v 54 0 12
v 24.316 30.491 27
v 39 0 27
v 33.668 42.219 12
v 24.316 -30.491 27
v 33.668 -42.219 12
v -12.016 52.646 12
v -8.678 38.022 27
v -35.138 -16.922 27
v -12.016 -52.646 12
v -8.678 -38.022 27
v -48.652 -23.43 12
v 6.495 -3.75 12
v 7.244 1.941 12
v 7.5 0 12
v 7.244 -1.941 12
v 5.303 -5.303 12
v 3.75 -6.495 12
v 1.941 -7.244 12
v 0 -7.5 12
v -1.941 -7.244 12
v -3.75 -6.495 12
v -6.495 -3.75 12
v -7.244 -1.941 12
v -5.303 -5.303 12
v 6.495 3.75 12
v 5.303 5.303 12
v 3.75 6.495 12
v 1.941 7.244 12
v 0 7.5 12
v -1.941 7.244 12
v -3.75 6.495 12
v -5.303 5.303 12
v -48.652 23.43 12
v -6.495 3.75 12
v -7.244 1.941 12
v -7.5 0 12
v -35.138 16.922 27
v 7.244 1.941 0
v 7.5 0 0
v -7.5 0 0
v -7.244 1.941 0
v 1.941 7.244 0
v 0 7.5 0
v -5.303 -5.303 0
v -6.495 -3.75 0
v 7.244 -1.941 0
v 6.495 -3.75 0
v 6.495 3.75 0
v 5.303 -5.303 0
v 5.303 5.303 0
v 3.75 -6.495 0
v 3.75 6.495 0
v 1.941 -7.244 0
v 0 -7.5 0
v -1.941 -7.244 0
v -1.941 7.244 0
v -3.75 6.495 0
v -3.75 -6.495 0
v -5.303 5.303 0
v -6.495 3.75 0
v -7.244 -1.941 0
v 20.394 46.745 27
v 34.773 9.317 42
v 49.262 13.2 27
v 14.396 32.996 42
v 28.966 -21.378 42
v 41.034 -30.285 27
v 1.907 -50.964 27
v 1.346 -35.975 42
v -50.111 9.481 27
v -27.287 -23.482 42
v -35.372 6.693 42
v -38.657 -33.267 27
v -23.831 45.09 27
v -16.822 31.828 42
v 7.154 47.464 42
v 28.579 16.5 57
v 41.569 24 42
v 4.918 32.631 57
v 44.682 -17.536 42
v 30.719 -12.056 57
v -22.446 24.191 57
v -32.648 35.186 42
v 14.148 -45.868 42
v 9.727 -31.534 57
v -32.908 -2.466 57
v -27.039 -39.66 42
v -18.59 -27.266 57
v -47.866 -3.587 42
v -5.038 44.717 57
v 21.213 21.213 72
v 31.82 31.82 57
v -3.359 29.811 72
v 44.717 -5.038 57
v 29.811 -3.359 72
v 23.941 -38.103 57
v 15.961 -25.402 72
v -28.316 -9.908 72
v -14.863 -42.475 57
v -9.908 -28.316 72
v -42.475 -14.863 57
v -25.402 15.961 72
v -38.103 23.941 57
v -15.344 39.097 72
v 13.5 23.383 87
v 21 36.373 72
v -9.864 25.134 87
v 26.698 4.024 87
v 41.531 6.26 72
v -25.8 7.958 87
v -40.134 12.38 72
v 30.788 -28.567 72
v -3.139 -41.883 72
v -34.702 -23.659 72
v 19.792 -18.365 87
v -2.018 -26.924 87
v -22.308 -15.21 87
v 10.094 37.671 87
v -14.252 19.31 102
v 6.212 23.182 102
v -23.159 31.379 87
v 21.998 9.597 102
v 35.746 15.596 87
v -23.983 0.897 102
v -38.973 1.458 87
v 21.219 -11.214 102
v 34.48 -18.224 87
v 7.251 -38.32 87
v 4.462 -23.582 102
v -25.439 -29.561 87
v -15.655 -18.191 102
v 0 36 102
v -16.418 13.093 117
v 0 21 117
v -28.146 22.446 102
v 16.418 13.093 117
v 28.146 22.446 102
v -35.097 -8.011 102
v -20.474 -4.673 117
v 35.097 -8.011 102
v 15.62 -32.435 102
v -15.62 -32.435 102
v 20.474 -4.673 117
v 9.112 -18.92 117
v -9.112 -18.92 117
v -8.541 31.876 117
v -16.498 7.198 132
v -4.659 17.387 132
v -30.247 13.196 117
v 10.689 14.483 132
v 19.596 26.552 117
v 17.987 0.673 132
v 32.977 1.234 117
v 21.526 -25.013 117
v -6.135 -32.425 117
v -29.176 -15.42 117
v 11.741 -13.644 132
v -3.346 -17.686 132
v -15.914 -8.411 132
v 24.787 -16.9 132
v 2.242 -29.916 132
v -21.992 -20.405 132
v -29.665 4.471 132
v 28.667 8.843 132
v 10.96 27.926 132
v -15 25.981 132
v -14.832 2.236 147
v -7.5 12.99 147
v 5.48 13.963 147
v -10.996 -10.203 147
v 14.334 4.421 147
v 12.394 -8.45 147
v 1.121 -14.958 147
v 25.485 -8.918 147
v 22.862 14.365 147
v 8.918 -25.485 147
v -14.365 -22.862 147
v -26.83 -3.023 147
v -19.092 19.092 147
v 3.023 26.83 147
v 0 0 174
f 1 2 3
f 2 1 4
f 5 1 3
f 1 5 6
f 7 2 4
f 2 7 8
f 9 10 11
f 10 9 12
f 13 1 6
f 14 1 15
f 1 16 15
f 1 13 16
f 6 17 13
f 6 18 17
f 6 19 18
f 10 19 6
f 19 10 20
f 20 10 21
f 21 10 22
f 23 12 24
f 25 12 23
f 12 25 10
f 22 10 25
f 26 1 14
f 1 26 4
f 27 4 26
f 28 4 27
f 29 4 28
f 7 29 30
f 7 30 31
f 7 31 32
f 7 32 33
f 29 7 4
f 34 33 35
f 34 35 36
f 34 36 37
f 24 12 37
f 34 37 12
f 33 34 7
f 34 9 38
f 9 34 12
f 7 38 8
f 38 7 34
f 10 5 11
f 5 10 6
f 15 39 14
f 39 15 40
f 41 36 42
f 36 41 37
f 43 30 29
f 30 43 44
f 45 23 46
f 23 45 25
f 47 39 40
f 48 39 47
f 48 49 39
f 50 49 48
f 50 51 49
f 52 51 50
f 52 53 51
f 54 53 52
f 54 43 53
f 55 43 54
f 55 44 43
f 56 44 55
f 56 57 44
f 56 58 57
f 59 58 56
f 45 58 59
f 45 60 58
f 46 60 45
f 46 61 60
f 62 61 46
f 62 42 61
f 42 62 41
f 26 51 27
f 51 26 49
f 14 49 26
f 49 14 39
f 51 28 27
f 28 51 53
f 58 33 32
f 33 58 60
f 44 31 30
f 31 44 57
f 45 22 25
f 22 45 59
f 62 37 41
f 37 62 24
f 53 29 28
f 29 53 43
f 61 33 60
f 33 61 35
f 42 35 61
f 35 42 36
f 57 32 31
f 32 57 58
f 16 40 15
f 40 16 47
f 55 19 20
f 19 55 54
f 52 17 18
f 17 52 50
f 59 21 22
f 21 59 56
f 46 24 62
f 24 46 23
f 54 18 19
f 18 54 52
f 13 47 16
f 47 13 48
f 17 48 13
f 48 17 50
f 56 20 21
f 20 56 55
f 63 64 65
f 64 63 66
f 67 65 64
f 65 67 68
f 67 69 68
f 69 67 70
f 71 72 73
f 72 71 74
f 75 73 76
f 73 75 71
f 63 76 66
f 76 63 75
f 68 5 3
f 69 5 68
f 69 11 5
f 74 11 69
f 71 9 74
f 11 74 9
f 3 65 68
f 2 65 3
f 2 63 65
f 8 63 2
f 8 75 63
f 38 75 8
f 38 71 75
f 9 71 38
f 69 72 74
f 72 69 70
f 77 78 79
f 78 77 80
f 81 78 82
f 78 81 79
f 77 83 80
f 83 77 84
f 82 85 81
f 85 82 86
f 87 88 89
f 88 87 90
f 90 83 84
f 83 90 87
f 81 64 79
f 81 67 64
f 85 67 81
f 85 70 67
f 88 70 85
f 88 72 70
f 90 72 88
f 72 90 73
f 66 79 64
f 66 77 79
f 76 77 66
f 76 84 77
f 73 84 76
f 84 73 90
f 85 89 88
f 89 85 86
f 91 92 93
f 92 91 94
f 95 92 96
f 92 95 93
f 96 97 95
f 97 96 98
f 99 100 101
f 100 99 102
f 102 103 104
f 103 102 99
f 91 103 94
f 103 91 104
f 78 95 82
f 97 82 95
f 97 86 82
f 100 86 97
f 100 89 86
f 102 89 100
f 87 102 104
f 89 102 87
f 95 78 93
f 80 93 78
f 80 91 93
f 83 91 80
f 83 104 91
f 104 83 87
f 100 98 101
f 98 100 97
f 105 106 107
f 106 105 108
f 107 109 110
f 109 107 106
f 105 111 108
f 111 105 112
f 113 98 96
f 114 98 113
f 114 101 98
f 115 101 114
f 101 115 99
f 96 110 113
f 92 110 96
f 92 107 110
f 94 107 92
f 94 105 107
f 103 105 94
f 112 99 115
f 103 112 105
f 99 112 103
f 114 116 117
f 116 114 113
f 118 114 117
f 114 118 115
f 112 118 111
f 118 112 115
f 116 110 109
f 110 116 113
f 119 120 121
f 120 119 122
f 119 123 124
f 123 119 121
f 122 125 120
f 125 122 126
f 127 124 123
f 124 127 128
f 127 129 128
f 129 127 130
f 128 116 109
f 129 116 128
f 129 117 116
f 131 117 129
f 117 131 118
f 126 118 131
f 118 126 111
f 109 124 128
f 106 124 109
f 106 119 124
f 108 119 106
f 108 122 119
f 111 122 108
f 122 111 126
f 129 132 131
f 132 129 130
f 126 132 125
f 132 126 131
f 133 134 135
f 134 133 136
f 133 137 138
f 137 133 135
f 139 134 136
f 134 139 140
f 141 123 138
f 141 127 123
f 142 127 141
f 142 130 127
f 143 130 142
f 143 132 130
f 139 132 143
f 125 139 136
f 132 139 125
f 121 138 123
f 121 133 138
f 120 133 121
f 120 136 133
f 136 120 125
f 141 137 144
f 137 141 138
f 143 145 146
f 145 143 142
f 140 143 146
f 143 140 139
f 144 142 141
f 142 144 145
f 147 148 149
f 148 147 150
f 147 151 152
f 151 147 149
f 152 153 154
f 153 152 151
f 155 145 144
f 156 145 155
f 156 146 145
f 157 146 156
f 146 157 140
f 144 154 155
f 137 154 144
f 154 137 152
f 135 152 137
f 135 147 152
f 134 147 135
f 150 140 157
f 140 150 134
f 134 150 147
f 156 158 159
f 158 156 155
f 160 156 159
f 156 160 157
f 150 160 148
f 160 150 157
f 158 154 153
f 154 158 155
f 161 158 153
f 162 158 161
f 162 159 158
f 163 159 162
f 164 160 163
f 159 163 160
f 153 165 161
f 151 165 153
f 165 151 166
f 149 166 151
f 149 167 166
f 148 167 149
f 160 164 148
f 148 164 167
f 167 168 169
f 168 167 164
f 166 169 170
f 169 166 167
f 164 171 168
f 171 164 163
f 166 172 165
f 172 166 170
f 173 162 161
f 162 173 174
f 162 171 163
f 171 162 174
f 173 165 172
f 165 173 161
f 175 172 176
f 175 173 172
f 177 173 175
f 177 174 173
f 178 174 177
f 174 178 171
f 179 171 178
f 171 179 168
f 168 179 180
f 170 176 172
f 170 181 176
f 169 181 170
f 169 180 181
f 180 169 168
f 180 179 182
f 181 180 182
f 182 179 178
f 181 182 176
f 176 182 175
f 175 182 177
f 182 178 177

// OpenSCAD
isteps = 10;
height = 100;
base = 30;
trunk_height = 12;
trunk_dia = 15;
    union(){  
        for(i = [ 0: 1: isteps-1]){
            scal = ((isteps-i)/isteps + .8);
            translate([0,0,1.5*i*height/isteps+trunk_height])
                scale([scal, scal, scal])
                linear_extrude(height=base, scale=[0,0])
                    rotate([0,0,15*i])
                        circle(base,$fn=7);
        cylinder(r=trunk_dia/2,h=trunk_height);
    }
}
